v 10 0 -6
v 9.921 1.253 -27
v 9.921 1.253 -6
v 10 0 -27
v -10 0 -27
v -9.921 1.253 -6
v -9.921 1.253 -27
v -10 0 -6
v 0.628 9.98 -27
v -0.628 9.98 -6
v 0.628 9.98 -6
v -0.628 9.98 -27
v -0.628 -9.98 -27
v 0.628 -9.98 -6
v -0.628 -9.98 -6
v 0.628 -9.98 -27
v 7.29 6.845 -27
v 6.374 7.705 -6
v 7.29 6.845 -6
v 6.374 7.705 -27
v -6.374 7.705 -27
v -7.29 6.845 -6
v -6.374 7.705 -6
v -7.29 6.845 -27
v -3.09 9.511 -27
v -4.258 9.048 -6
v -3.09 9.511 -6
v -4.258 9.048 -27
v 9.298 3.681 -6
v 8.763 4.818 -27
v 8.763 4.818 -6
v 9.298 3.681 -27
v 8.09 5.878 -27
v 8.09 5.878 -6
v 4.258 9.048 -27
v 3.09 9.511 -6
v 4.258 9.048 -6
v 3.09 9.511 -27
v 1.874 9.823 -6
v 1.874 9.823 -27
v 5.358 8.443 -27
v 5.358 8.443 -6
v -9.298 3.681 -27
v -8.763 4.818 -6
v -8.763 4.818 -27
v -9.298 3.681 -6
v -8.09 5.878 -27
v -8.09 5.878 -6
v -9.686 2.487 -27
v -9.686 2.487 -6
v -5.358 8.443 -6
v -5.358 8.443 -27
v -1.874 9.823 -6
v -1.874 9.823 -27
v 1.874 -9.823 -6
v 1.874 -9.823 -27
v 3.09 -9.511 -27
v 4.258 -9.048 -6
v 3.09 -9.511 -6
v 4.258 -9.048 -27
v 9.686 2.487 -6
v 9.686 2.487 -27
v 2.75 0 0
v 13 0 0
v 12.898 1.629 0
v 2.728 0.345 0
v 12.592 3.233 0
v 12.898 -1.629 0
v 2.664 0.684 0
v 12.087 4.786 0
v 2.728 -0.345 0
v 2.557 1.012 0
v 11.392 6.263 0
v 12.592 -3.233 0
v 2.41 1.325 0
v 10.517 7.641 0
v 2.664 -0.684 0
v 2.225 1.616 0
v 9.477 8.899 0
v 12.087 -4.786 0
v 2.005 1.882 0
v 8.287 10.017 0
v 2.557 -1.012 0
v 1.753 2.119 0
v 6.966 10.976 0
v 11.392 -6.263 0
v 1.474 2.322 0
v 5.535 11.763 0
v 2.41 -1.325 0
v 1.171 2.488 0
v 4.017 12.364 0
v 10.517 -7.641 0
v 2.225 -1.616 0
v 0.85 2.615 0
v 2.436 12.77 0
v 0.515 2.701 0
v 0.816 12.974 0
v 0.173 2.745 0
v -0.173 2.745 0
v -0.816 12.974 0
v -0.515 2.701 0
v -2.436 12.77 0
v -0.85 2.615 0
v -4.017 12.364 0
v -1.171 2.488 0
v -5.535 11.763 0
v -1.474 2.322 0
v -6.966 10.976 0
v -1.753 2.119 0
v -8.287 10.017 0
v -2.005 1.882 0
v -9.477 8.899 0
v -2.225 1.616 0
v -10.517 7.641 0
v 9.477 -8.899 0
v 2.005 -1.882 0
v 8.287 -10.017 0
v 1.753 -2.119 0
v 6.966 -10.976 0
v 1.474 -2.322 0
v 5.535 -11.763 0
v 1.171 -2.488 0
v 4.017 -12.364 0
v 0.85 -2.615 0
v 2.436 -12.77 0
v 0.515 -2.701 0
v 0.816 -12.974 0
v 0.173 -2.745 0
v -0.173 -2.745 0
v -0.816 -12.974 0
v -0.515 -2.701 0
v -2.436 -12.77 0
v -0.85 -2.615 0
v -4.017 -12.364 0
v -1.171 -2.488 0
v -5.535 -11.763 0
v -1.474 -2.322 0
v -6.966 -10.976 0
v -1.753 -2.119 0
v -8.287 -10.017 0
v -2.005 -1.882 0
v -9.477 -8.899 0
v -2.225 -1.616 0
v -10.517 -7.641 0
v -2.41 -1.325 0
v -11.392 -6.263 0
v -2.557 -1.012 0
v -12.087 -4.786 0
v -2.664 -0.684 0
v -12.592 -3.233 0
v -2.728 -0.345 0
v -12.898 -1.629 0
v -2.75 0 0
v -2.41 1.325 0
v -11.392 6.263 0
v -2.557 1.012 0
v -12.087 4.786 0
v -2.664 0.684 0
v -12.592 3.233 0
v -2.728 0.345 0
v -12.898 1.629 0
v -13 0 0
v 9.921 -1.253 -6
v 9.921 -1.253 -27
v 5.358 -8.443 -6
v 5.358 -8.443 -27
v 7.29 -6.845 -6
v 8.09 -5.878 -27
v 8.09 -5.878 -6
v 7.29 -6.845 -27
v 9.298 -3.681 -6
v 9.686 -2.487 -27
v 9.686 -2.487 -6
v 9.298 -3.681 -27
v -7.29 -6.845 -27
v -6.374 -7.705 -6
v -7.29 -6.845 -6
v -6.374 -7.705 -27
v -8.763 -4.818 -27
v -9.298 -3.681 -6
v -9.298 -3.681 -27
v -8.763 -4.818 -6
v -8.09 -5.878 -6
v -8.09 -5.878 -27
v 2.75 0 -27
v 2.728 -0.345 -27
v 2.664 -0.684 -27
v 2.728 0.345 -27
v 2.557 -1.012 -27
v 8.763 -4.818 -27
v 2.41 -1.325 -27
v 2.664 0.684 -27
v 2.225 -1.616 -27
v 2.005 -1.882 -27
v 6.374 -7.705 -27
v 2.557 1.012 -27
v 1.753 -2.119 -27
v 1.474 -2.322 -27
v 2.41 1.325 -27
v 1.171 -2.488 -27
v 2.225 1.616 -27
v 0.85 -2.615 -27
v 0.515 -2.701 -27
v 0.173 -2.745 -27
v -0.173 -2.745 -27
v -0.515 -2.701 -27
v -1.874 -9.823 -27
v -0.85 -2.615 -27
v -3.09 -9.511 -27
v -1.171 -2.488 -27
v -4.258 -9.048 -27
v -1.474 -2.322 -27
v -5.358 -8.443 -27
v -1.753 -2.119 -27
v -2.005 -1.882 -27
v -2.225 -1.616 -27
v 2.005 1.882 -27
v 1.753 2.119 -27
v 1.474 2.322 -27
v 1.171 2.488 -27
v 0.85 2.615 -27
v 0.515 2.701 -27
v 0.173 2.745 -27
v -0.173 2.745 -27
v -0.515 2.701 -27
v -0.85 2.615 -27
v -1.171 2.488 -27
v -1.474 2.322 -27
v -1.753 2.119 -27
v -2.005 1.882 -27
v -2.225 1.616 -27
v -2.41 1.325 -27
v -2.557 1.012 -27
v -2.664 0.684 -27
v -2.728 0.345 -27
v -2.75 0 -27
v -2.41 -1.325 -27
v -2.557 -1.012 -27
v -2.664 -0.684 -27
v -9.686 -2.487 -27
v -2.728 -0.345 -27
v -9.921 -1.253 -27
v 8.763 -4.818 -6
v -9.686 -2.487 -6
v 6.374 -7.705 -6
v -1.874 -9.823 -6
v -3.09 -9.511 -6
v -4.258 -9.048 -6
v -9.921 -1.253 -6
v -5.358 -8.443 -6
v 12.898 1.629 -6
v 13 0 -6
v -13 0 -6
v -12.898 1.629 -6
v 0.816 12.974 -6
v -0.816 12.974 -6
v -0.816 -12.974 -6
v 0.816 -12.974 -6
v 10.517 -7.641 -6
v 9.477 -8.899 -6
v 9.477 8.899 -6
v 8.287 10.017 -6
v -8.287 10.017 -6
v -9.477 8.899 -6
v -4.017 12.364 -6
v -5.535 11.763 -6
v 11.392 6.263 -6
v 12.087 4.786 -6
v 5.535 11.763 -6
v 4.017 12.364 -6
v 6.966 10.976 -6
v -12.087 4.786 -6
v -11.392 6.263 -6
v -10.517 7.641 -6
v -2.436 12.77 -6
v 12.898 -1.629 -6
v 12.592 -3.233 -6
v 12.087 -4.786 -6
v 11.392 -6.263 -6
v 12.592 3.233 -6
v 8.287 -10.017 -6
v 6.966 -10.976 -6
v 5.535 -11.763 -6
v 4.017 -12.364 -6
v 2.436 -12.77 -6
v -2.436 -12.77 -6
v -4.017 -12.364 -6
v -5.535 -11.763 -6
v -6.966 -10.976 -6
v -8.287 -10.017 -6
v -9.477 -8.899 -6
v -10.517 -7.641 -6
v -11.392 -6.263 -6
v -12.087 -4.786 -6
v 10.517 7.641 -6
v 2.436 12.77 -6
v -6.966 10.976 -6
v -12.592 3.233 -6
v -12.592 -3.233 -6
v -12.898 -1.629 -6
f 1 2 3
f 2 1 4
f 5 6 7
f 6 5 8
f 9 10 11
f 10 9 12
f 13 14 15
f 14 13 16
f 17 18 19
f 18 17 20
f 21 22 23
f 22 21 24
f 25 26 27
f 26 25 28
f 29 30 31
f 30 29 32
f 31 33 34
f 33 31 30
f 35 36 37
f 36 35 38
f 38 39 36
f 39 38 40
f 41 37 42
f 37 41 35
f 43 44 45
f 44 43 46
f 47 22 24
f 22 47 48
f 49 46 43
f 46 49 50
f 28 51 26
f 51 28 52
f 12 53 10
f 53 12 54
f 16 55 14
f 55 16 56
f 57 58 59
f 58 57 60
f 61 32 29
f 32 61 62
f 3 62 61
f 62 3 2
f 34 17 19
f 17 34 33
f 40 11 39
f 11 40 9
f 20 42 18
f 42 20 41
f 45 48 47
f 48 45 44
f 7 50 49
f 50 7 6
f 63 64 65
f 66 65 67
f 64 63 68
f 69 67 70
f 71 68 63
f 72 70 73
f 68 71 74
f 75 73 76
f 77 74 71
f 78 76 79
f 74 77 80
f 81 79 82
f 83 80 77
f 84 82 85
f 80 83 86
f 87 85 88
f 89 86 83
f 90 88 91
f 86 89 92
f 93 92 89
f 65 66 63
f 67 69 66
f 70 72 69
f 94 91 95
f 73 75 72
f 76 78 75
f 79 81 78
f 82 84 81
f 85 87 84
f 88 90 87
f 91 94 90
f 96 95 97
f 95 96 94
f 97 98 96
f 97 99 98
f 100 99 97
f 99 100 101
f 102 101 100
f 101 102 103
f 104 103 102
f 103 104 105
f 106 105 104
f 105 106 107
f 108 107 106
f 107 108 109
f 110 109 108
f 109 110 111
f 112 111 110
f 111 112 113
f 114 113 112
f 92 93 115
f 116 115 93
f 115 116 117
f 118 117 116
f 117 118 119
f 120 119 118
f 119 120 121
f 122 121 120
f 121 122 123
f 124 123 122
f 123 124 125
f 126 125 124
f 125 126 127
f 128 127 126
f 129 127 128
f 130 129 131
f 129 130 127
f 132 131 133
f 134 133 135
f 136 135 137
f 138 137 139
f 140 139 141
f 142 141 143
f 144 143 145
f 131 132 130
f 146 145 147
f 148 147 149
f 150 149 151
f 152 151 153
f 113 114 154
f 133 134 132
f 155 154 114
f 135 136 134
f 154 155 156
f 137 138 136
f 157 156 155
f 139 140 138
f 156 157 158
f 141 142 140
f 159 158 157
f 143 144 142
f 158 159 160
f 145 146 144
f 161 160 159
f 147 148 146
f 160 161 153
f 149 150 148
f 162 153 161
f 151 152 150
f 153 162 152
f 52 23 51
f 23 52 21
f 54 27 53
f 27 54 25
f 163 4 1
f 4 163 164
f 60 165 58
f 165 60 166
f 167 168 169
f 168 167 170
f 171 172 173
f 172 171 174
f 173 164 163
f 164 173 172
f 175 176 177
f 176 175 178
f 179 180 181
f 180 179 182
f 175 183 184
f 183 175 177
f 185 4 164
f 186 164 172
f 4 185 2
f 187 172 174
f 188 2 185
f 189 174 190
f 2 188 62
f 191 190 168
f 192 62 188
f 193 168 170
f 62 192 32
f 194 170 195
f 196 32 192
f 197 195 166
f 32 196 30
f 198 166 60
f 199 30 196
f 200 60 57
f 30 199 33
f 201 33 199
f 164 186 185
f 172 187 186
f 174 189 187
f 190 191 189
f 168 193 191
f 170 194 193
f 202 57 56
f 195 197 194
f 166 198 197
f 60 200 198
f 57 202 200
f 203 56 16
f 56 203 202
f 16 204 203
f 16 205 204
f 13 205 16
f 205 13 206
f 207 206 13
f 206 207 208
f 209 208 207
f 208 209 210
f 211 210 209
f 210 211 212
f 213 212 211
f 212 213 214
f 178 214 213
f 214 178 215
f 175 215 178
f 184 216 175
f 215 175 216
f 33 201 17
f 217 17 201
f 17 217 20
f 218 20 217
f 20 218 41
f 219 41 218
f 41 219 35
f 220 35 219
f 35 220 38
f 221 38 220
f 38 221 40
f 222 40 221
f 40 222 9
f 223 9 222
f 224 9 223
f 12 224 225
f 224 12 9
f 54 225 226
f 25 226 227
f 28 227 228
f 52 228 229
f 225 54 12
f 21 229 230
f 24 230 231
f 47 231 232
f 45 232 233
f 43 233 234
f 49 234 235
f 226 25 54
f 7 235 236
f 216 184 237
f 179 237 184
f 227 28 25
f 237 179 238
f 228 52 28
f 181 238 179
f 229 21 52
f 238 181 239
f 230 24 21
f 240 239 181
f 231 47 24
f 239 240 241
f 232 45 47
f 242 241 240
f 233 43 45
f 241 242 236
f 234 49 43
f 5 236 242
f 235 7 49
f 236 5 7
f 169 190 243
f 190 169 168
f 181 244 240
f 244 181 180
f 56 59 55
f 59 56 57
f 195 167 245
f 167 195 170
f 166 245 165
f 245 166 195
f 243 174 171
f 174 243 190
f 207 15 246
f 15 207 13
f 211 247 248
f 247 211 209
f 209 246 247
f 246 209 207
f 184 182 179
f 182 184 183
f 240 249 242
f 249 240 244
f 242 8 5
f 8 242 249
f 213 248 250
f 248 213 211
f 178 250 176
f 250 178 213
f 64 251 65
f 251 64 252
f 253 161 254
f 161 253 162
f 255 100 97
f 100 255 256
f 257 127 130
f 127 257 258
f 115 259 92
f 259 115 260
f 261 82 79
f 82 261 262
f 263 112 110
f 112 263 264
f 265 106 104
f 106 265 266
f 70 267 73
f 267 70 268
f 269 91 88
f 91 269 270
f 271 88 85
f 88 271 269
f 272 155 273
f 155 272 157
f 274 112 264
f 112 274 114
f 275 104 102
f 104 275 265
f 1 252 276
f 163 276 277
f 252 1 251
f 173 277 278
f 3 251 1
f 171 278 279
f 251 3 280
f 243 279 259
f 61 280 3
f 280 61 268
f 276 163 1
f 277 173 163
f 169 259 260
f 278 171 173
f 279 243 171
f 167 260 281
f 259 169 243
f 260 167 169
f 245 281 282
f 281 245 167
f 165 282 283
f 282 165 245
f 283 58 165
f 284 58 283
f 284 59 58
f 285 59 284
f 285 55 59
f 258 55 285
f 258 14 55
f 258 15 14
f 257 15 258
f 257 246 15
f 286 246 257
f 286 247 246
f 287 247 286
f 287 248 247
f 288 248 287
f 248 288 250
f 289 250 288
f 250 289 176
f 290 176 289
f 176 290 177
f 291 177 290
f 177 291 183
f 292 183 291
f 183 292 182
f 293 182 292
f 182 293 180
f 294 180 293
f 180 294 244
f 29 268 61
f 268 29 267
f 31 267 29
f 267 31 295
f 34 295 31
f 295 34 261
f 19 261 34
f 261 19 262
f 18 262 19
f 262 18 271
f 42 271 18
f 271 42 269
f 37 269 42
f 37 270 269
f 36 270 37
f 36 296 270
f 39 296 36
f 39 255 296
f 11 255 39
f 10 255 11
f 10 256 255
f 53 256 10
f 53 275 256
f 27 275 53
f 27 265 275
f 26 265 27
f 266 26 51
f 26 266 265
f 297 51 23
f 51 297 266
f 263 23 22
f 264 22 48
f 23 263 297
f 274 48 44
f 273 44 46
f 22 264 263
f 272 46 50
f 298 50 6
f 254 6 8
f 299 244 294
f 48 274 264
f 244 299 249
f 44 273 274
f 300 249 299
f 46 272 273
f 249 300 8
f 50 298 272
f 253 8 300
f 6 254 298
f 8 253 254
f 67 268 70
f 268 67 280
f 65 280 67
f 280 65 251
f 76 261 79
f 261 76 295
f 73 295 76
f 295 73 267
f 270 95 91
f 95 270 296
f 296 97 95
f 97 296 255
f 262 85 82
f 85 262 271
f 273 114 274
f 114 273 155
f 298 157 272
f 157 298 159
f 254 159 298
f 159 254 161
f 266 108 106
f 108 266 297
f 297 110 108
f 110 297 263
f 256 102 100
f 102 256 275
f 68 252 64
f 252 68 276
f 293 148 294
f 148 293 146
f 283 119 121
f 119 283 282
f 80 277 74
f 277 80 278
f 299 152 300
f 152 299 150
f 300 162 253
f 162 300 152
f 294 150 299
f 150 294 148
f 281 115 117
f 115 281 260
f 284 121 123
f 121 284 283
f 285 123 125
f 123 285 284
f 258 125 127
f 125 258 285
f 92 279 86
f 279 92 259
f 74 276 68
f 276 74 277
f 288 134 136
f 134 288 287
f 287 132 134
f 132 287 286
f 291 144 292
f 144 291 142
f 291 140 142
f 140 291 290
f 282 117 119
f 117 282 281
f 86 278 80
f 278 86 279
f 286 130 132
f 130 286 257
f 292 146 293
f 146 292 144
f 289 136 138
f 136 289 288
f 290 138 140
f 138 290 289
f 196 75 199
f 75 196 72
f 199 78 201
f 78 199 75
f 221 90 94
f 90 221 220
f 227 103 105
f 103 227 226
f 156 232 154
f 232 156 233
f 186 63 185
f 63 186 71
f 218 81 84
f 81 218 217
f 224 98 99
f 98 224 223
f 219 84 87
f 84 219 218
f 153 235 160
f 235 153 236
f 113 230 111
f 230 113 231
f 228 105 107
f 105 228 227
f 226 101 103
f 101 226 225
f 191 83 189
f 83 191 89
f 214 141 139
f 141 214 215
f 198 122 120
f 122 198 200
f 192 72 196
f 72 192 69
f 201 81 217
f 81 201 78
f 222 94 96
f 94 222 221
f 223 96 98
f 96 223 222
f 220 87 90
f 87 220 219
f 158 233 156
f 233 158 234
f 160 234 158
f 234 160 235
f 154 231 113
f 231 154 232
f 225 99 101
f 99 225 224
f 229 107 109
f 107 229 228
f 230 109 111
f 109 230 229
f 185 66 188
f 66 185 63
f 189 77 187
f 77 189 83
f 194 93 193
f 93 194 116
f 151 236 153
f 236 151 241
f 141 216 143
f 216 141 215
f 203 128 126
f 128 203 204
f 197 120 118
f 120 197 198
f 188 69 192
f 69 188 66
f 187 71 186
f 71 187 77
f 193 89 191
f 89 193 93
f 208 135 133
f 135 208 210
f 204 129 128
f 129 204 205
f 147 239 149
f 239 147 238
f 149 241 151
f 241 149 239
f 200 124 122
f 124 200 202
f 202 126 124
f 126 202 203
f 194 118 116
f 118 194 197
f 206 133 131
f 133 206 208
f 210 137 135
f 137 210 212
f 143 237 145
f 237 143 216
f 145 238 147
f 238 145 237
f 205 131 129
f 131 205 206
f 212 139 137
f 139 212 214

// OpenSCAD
$fn = 50;


difference() {
	union() {
		translate(v = [0, 0, -27.0000000000]) {
			cylinder(h = 27, r = 10.0000000000);
		}
		translate(v = [0, 0, -6.0000000000]) {
			cylinder(h = 6, r = 13.0000000000);
		}
	}
	union() {
		#translate(v = [0, 0, -27]) {
			cylinder(h = 27, r = 2.7500000000);
		}
	}
}
